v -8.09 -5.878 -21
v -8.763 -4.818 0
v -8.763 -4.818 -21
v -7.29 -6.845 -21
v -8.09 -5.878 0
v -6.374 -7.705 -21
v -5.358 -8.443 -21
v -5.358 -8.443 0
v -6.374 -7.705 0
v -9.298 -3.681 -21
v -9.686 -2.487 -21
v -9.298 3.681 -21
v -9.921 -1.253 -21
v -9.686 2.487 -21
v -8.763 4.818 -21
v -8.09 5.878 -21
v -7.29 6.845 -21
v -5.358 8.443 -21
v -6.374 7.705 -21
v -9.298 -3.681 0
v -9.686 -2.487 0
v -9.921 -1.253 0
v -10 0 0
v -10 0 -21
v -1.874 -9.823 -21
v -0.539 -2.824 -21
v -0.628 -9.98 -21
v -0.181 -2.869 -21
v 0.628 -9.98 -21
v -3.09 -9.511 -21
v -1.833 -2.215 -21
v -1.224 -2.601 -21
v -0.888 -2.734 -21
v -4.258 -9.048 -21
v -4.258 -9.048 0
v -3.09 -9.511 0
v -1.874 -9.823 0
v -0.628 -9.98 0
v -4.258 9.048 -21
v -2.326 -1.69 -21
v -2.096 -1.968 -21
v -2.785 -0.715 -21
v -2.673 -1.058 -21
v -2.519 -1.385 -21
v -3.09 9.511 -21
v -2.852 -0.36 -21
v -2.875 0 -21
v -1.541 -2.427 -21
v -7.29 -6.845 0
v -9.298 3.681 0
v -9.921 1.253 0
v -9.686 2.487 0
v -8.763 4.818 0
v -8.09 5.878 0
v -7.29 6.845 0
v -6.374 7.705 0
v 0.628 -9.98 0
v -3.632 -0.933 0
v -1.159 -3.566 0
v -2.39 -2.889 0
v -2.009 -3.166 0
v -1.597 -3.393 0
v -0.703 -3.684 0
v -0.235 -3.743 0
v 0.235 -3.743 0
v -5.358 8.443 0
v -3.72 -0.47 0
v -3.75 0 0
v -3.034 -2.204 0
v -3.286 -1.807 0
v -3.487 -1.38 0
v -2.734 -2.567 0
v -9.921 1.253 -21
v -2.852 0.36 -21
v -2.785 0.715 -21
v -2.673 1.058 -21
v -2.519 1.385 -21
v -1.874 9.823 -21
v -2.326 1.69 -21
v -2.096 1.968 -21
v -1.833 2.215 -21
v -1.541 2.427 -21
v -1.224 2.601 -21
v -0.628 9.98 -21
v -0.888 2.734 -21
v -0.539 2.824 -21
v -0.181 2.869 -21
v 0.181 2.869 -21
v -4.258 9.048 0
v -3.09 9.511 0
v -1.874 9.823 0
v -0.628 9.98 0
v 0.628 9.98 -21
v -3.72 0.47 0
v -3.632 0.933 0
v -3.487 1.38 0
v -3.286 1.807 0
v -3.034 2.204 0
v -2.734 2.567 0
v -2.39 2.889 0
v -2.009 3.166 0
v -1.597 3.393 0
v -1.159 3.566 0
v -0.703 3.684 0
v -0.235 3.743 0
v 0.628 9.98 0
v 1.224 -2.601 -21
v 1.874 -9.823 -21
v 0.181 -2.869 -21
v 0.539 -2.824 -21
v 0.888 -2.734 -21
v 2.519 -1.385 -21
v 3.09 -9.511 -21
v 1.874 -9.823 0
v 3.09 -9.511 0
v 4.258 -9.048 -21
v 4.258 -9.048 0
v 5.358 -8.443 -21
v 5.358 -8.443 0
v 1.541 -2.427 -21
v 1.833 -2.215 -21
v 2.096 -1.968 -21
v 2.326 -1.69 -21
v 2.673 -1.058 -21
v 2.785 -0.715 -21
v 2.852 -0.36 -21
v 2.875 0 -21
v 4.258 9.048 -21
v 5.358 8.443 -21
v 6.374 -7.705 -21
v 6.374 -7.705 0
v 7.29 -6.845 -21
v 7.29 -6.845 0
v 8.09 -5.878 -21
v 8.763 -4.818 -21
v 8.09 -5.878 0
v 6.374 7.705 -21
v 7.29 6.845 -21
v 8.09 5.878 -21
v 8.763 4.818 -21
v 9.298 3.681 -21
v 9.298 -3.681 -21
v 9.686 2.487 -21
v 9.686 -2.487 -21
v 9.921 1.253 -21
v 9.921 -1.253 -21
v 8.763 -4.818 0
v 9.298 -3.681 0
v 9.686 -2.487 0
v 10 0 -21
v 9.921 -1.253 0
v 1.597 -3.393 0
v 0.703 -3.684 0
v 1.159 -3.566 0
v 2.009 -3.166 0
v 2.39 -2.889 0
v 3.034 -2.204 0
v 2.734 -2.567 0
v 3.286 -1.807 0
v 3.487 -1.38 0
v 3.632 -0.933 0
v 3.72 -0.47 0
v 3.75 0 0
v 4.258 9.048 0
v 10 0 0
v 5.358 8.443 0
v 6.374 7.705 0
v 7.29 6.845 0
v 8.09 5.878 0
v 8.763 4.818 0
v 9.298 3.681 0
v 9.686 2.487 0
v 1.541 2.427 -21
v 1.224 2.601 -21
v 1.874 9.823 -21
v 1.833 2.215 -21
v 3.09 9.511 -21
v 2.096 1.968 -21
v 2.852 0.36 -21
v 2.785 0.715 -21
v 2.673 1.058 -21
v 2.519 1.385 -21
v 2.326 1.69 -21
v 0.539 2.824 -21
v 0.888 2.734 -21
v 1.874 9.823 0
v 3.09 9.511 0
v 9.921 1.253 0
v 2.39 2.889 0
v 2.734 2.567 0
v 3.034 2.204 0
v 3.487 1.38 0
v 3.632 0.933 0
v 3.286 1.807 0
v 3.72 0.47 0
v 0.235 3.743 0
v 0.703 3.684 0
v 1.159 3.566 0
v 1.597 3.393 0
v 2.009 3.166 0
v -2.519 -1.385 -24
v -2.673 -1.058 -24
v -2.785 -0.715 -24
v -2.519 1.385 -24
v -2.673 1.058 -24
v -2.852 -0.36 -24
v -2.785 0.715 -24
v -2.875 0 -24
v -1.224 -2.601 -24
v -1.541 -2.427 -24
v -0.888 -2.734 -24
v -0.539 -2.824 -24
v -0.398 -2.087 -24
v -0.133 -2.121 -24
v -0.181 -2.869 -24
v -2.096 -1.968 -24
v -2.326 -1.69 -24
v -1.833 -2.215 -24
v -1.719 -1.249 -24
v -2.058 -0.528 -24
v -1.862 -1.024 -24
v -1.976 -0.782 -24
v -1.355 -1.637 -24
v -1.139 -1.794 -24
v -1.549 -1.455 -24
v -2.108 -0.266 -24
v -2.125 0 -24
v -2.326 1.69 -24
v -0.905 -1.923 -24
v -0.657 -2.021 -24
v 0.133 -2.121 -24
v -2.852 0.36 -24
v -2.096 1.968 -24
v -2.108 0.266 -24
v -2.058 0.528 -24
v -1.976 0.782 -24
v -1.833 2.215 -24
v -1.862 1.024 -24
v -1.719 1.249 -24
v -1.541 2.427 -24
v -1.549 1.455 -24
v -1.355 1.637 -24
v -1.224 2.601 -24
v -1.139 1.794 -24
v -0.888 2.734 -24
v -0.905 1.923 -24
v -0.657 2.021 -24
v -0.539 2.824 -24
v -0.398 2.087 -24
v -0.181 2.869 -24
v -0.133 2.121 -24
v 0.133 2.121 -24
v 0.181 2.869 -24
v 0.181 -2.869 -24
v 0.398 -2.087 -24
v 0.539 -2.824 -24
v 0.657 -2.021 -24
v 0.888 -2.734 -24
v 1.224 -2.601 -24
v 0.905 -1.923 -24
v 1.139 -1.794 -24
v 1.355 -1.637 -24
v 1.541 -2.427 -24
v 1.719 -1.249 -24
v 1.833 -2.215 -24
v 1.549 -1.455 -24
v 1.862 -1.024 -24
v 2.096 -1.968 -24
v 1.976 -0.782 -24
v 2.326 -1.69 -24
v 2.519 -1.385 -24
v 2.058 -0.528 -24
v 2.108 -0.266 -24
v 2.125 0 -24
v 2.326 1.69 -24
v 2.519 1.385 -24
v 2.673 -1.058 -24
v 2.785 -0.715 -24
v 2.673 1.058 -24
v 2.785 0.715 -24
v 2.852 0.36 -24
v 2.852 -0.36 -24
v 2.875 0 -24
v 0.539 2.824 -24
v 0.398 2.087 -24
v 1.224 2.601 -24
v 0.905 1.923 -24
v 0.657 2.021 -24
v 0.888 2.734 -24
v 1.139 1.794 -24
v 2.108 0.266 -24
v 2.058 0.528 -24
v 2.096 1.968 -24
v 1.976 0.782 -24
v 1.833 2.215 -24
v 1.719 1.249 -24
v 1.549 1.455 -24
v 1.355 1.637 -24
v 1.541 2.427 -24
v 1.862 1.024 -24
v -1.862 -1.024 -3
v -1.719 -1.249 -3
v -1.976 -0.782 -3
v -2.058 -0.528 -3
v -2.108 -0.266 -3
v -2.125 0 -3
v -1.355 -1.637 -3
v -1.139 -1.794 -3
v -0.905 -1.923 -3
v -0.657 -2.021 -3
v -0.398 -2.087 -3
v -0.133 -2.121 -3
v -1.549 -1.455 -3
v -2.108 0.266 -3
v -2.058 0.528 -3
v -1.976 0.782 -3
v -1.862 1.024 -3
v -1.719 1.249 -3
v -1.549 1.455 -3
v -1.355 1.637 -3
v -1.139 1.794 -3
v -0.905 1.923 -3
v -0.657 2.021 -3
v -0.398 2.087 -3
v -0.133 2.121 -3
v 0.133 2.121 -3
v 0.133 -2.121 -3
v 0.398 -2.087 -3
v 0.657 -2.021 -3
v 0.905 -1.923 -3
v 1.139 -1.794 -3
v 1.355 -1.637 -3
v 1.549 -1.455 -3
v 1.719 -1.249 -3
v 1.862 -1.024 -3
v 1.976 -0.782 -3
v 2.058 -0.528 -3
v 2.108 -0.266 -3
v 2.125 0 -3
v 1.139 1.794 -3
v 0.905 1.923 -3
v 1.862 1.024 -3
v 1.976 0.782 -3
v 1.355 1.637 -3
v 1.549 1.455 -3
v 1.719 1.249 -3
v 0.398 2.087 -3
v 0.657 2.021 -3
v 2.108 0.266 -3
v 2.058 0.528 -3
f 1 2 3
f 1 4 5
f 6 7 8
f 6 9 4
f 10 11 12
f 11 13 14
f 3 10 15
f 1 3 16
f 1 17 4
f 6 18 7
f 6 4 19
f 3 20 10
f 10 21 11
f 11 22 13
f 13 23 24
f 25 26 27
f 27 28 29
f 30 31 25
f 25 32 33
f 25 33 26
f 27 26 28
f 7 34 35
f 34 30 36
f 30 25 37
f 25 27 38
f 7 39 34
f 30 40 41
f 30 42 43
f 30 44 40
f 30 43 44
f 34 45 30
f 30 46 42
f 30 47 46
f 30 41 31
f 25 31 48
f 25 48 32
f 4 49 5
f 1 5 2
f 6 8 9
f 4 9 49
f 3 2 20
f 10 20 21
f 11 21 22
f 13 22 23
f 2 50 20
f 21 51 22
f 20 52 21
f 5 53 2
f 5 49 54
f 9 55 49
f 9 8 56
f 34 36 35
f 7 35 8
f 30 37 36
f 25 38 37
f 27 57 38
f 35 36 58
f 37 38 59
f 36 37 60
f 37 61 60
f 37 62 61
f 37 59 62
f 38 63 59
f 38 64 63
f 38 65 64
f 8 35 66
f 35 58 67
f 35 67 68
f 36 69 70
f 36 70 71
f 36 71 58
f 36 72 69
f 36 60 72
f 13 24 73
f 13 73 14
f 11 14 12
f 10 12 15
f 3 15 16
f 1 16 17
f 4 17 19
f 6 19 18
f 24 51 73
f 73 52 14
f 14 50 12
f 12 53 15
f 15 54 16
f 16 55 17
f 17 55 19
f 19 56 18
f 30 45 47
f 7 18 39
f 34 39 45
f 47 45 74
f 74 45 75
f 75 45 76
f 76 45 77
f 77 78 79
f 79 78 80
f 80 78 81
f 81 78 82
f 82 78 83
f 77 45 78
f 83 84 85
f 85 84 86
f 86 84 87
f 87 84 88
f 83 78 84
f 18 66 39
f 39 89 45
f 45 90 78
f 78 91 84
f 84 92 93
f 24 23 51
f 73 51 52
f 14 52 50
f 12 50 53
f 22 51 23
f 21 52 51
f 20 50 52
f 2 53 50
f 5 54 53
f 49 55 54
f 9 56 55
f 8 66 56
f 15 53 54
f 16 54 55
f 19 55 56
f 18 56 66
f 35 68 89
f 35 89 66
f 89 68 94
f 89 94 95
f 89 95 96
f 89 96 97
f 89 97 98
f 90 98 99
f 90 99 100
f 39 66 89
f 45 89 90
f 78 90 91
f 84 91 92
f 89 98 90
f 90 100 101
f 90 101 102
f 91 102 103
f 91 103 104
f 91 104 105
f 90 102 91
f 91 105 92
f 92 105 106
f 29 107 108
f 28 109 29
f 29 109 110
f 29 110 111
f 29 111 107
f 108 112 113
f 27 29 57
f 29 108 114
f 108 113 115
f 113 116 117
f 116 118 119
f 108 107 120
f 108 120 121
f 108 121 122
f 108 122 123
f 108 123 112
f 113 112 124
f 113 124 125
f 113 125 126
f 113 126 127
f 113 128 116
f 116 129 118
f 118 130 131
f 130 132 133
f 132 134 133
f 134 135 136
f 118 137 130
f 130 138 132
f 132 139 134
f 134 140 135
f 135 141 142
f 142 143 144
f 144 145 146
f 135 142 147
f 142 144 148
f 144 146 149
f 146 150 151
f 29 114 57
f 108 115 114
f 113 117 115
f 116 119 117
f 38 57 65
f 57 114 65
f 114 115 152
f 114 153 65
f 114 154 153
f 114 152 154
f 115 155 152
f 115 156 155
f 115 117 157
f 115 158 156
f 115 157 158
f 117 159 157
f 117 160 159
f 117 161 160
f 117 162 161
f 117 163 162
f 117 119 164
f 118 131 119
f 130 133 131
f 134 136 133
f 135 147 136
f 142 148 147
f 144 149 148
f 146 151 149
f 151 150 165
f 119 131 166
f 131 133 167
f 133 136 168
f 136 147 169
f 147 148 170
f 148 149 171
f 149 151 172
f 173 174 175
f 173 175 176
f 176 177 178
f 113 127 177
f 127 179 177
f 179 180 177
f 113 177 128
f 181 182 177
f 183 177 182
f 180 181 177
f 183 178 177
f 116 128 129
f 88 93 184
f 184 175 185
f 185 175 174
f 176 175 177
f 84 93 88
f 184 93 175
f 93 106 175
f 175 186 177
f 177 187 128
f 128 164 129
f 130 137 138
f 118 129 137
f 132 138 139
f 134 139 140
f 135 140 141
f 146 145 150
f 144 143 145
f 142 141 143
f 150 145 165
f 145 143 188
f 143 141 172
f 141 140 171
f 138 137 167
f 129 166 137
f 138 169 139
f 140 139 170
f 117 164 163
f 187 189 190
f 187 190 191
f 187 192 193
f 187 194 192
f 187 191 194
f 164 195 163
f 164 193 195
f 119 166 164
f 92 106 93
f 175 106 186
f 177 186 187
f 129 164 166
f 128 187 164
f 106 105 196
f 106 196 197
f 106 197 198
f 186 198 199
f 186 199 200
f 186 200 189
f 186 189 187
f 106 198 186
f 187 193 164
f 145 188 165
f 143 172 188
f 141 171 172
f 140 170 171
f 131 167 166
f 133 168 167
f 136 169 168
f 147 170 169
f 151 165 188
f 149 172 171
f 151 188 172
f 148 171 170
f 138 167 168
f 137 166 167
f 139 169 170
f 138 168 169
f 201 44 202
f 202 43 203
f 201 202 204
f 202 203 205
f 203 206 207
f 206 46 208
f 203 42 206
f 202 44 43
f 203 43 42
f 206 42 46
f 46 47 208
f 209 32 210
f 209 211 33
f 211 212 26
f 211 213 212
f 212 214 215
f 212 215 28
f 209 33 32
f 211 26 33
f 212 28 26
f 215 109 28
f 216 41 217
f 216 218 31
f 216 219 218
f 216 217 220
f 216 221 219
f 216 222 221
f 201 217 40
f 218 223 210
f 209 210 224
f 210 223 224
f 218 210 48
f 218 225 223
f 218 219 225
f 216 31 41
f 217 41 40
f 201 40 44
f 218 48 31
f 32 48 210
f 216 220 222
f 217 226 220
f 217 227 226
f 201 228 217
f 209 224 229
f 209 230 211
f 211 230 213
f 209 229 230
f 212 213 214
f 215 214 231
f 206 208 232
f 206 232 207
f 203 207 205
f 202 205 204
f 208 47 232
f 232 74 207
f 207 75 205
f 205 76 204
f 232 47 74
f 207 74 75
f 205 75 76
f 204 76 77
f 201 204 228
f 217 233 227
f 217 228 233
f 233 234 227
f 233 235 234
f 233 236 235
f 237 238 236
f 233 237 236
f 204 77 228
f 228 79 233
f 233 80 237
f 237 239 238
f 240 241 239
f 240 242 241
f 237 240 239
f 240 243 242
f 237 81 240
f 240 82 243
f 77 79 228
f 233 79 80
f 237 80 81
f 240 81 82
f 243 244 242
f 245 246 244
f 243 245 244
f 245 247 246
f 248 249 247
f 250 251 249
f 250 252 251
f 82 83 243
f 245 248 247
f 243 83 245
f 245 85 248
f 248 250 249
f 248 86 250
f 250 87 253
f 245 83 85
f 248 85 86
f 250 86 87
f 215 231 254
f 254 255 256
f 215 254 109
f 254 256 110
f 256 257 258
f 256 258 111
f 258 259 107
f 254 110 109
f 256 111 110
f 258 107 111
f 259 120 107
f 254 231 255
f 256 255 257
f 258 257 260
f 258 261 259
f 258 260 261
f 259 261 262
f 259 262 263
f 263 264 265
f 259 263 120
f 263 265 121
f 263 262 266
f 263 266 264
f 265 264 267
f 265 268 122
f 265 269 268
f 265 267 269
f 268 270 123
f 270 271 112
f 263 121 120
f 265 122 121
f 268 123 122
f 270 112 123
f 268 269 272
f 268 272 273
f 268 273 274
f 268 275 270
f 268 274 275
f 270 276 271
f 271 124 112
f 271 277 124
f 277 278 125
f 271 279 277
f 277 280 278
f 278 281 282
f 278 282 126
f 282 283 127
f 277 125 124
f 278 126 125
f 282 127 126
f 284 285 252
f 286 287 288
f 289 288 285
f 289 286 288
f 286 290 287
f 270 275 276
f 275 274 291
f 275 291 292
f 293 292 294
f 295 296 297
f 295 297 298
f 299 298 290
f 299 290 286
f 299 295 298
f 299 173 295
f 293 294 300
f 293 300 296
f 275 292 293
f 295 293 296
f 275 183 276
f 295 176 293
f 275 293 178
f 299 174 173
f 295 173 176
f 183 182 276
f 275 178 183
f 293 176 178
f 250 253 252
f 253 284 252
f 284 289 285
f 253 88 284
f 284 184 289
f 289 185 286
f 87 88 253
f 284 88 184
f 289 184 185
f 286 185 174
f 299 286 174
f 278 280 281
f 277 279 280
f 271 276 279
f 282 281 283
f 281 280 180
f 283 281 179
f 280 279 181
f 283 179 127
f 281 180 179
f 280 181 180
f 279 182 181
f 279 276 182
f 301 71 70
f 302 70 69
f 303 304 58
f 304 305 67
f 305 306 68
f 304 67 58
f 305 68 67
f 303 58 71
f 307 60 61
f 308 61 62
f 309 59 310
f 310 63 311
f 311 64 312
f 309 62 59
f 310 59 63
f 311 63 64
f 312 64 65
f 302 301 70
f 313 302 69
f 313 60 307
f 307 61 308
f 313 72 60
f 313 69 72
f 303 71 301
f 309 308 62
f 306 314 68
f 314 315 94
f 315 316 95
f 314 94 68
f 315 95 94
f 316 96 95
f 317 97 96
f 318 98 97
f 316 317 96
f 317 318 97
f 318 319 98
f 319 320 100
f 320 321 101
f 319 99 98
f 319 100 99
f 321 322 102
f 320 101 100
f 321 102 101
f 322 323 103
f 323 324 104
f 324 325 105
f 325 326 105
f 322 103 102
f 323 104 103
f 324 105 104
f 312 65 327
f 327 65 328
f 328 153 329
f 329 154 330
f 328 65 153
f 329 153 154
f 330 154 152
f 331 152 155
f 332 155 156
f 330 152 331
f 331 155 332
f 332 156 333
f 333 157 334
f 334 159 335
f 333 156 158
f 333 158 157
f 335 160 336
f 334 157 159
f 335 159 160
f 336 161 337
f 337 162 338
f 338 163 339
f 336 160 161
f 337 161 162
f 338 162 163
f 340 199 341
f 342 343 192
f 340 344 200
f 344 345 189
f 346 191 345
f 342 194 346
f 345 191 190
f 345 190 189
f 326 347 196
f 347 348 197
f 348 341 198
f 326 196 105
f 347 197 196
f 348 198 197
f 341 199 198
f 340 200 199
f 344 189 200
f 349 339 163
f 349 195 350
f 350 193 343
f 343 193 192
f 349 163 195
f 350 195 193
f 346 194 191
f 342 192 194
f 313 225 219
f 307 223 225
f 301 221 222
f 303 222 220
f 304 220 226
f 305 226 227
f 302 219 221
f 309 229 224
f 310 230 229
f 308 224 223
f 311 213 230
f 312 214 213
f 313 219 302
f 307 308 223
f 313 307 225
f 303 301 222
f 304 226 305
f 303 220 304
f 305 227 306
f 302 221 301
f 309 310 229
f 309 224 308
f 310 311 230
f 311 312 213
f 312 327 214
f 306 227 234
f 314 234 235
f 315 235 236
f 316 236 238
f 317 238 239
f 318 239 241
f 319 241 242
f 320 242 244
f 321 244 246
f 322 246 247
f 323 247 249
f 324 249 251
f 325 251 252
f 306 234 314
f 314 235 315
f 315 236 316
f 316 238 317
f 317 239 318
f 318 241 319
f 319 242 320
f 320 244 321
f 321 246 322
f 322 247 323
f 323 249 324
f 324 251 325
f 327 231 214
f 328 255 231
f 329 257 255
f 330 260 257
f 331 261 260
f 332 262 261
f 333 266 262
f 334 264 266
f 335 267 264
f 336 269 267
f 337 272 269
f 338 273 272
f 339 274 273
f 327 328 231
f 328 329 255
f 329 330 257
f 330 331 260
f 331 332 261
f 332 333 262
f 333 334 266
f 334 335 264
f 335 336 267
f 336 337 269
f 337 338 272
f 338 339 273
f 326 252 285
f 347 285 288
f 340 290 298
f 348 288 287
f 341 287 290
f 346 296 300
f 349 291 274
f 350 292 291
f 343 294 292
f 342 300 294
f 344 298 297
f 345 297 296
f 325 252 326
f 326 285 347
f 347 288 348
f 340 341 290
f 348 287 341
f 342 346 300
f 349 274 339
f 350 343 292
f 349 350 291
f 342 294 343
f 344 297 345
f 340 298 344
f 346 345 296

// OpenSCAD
$fn = 50;

difference() {
	union() {
		translate(v = [0, 0, -21.0]) {
			cylinder(h = 21, r = 10.0);
		}
		#translate(v = [0, 0, -24.0]) {
			cylinder(h = 24, r = 2.875);
		}
	}
	union() {
		translate(v = [0, 0, 0]) {
			rotate(a = [0, 0, 0]) {
				difference() {
					union() {
						translate(v = [0, 0, -24.0]) {
							cylinder(h = 24, r = 2.0);
						}
						translate(v = [0, 0, -3]) {
							cylinder(h = 3, r1 = 2.125, r2 = 3.75);
						}
						translate(v = [0, 0, -24.0]) {
							cylinder(h = 24, r = 2.125);
						}
						translate(v = [0, 0, -24.0]) {
							cylinder(h = 24, r = 2.0);
						}
					}
					union();
				}
			}
		}
	}
}
